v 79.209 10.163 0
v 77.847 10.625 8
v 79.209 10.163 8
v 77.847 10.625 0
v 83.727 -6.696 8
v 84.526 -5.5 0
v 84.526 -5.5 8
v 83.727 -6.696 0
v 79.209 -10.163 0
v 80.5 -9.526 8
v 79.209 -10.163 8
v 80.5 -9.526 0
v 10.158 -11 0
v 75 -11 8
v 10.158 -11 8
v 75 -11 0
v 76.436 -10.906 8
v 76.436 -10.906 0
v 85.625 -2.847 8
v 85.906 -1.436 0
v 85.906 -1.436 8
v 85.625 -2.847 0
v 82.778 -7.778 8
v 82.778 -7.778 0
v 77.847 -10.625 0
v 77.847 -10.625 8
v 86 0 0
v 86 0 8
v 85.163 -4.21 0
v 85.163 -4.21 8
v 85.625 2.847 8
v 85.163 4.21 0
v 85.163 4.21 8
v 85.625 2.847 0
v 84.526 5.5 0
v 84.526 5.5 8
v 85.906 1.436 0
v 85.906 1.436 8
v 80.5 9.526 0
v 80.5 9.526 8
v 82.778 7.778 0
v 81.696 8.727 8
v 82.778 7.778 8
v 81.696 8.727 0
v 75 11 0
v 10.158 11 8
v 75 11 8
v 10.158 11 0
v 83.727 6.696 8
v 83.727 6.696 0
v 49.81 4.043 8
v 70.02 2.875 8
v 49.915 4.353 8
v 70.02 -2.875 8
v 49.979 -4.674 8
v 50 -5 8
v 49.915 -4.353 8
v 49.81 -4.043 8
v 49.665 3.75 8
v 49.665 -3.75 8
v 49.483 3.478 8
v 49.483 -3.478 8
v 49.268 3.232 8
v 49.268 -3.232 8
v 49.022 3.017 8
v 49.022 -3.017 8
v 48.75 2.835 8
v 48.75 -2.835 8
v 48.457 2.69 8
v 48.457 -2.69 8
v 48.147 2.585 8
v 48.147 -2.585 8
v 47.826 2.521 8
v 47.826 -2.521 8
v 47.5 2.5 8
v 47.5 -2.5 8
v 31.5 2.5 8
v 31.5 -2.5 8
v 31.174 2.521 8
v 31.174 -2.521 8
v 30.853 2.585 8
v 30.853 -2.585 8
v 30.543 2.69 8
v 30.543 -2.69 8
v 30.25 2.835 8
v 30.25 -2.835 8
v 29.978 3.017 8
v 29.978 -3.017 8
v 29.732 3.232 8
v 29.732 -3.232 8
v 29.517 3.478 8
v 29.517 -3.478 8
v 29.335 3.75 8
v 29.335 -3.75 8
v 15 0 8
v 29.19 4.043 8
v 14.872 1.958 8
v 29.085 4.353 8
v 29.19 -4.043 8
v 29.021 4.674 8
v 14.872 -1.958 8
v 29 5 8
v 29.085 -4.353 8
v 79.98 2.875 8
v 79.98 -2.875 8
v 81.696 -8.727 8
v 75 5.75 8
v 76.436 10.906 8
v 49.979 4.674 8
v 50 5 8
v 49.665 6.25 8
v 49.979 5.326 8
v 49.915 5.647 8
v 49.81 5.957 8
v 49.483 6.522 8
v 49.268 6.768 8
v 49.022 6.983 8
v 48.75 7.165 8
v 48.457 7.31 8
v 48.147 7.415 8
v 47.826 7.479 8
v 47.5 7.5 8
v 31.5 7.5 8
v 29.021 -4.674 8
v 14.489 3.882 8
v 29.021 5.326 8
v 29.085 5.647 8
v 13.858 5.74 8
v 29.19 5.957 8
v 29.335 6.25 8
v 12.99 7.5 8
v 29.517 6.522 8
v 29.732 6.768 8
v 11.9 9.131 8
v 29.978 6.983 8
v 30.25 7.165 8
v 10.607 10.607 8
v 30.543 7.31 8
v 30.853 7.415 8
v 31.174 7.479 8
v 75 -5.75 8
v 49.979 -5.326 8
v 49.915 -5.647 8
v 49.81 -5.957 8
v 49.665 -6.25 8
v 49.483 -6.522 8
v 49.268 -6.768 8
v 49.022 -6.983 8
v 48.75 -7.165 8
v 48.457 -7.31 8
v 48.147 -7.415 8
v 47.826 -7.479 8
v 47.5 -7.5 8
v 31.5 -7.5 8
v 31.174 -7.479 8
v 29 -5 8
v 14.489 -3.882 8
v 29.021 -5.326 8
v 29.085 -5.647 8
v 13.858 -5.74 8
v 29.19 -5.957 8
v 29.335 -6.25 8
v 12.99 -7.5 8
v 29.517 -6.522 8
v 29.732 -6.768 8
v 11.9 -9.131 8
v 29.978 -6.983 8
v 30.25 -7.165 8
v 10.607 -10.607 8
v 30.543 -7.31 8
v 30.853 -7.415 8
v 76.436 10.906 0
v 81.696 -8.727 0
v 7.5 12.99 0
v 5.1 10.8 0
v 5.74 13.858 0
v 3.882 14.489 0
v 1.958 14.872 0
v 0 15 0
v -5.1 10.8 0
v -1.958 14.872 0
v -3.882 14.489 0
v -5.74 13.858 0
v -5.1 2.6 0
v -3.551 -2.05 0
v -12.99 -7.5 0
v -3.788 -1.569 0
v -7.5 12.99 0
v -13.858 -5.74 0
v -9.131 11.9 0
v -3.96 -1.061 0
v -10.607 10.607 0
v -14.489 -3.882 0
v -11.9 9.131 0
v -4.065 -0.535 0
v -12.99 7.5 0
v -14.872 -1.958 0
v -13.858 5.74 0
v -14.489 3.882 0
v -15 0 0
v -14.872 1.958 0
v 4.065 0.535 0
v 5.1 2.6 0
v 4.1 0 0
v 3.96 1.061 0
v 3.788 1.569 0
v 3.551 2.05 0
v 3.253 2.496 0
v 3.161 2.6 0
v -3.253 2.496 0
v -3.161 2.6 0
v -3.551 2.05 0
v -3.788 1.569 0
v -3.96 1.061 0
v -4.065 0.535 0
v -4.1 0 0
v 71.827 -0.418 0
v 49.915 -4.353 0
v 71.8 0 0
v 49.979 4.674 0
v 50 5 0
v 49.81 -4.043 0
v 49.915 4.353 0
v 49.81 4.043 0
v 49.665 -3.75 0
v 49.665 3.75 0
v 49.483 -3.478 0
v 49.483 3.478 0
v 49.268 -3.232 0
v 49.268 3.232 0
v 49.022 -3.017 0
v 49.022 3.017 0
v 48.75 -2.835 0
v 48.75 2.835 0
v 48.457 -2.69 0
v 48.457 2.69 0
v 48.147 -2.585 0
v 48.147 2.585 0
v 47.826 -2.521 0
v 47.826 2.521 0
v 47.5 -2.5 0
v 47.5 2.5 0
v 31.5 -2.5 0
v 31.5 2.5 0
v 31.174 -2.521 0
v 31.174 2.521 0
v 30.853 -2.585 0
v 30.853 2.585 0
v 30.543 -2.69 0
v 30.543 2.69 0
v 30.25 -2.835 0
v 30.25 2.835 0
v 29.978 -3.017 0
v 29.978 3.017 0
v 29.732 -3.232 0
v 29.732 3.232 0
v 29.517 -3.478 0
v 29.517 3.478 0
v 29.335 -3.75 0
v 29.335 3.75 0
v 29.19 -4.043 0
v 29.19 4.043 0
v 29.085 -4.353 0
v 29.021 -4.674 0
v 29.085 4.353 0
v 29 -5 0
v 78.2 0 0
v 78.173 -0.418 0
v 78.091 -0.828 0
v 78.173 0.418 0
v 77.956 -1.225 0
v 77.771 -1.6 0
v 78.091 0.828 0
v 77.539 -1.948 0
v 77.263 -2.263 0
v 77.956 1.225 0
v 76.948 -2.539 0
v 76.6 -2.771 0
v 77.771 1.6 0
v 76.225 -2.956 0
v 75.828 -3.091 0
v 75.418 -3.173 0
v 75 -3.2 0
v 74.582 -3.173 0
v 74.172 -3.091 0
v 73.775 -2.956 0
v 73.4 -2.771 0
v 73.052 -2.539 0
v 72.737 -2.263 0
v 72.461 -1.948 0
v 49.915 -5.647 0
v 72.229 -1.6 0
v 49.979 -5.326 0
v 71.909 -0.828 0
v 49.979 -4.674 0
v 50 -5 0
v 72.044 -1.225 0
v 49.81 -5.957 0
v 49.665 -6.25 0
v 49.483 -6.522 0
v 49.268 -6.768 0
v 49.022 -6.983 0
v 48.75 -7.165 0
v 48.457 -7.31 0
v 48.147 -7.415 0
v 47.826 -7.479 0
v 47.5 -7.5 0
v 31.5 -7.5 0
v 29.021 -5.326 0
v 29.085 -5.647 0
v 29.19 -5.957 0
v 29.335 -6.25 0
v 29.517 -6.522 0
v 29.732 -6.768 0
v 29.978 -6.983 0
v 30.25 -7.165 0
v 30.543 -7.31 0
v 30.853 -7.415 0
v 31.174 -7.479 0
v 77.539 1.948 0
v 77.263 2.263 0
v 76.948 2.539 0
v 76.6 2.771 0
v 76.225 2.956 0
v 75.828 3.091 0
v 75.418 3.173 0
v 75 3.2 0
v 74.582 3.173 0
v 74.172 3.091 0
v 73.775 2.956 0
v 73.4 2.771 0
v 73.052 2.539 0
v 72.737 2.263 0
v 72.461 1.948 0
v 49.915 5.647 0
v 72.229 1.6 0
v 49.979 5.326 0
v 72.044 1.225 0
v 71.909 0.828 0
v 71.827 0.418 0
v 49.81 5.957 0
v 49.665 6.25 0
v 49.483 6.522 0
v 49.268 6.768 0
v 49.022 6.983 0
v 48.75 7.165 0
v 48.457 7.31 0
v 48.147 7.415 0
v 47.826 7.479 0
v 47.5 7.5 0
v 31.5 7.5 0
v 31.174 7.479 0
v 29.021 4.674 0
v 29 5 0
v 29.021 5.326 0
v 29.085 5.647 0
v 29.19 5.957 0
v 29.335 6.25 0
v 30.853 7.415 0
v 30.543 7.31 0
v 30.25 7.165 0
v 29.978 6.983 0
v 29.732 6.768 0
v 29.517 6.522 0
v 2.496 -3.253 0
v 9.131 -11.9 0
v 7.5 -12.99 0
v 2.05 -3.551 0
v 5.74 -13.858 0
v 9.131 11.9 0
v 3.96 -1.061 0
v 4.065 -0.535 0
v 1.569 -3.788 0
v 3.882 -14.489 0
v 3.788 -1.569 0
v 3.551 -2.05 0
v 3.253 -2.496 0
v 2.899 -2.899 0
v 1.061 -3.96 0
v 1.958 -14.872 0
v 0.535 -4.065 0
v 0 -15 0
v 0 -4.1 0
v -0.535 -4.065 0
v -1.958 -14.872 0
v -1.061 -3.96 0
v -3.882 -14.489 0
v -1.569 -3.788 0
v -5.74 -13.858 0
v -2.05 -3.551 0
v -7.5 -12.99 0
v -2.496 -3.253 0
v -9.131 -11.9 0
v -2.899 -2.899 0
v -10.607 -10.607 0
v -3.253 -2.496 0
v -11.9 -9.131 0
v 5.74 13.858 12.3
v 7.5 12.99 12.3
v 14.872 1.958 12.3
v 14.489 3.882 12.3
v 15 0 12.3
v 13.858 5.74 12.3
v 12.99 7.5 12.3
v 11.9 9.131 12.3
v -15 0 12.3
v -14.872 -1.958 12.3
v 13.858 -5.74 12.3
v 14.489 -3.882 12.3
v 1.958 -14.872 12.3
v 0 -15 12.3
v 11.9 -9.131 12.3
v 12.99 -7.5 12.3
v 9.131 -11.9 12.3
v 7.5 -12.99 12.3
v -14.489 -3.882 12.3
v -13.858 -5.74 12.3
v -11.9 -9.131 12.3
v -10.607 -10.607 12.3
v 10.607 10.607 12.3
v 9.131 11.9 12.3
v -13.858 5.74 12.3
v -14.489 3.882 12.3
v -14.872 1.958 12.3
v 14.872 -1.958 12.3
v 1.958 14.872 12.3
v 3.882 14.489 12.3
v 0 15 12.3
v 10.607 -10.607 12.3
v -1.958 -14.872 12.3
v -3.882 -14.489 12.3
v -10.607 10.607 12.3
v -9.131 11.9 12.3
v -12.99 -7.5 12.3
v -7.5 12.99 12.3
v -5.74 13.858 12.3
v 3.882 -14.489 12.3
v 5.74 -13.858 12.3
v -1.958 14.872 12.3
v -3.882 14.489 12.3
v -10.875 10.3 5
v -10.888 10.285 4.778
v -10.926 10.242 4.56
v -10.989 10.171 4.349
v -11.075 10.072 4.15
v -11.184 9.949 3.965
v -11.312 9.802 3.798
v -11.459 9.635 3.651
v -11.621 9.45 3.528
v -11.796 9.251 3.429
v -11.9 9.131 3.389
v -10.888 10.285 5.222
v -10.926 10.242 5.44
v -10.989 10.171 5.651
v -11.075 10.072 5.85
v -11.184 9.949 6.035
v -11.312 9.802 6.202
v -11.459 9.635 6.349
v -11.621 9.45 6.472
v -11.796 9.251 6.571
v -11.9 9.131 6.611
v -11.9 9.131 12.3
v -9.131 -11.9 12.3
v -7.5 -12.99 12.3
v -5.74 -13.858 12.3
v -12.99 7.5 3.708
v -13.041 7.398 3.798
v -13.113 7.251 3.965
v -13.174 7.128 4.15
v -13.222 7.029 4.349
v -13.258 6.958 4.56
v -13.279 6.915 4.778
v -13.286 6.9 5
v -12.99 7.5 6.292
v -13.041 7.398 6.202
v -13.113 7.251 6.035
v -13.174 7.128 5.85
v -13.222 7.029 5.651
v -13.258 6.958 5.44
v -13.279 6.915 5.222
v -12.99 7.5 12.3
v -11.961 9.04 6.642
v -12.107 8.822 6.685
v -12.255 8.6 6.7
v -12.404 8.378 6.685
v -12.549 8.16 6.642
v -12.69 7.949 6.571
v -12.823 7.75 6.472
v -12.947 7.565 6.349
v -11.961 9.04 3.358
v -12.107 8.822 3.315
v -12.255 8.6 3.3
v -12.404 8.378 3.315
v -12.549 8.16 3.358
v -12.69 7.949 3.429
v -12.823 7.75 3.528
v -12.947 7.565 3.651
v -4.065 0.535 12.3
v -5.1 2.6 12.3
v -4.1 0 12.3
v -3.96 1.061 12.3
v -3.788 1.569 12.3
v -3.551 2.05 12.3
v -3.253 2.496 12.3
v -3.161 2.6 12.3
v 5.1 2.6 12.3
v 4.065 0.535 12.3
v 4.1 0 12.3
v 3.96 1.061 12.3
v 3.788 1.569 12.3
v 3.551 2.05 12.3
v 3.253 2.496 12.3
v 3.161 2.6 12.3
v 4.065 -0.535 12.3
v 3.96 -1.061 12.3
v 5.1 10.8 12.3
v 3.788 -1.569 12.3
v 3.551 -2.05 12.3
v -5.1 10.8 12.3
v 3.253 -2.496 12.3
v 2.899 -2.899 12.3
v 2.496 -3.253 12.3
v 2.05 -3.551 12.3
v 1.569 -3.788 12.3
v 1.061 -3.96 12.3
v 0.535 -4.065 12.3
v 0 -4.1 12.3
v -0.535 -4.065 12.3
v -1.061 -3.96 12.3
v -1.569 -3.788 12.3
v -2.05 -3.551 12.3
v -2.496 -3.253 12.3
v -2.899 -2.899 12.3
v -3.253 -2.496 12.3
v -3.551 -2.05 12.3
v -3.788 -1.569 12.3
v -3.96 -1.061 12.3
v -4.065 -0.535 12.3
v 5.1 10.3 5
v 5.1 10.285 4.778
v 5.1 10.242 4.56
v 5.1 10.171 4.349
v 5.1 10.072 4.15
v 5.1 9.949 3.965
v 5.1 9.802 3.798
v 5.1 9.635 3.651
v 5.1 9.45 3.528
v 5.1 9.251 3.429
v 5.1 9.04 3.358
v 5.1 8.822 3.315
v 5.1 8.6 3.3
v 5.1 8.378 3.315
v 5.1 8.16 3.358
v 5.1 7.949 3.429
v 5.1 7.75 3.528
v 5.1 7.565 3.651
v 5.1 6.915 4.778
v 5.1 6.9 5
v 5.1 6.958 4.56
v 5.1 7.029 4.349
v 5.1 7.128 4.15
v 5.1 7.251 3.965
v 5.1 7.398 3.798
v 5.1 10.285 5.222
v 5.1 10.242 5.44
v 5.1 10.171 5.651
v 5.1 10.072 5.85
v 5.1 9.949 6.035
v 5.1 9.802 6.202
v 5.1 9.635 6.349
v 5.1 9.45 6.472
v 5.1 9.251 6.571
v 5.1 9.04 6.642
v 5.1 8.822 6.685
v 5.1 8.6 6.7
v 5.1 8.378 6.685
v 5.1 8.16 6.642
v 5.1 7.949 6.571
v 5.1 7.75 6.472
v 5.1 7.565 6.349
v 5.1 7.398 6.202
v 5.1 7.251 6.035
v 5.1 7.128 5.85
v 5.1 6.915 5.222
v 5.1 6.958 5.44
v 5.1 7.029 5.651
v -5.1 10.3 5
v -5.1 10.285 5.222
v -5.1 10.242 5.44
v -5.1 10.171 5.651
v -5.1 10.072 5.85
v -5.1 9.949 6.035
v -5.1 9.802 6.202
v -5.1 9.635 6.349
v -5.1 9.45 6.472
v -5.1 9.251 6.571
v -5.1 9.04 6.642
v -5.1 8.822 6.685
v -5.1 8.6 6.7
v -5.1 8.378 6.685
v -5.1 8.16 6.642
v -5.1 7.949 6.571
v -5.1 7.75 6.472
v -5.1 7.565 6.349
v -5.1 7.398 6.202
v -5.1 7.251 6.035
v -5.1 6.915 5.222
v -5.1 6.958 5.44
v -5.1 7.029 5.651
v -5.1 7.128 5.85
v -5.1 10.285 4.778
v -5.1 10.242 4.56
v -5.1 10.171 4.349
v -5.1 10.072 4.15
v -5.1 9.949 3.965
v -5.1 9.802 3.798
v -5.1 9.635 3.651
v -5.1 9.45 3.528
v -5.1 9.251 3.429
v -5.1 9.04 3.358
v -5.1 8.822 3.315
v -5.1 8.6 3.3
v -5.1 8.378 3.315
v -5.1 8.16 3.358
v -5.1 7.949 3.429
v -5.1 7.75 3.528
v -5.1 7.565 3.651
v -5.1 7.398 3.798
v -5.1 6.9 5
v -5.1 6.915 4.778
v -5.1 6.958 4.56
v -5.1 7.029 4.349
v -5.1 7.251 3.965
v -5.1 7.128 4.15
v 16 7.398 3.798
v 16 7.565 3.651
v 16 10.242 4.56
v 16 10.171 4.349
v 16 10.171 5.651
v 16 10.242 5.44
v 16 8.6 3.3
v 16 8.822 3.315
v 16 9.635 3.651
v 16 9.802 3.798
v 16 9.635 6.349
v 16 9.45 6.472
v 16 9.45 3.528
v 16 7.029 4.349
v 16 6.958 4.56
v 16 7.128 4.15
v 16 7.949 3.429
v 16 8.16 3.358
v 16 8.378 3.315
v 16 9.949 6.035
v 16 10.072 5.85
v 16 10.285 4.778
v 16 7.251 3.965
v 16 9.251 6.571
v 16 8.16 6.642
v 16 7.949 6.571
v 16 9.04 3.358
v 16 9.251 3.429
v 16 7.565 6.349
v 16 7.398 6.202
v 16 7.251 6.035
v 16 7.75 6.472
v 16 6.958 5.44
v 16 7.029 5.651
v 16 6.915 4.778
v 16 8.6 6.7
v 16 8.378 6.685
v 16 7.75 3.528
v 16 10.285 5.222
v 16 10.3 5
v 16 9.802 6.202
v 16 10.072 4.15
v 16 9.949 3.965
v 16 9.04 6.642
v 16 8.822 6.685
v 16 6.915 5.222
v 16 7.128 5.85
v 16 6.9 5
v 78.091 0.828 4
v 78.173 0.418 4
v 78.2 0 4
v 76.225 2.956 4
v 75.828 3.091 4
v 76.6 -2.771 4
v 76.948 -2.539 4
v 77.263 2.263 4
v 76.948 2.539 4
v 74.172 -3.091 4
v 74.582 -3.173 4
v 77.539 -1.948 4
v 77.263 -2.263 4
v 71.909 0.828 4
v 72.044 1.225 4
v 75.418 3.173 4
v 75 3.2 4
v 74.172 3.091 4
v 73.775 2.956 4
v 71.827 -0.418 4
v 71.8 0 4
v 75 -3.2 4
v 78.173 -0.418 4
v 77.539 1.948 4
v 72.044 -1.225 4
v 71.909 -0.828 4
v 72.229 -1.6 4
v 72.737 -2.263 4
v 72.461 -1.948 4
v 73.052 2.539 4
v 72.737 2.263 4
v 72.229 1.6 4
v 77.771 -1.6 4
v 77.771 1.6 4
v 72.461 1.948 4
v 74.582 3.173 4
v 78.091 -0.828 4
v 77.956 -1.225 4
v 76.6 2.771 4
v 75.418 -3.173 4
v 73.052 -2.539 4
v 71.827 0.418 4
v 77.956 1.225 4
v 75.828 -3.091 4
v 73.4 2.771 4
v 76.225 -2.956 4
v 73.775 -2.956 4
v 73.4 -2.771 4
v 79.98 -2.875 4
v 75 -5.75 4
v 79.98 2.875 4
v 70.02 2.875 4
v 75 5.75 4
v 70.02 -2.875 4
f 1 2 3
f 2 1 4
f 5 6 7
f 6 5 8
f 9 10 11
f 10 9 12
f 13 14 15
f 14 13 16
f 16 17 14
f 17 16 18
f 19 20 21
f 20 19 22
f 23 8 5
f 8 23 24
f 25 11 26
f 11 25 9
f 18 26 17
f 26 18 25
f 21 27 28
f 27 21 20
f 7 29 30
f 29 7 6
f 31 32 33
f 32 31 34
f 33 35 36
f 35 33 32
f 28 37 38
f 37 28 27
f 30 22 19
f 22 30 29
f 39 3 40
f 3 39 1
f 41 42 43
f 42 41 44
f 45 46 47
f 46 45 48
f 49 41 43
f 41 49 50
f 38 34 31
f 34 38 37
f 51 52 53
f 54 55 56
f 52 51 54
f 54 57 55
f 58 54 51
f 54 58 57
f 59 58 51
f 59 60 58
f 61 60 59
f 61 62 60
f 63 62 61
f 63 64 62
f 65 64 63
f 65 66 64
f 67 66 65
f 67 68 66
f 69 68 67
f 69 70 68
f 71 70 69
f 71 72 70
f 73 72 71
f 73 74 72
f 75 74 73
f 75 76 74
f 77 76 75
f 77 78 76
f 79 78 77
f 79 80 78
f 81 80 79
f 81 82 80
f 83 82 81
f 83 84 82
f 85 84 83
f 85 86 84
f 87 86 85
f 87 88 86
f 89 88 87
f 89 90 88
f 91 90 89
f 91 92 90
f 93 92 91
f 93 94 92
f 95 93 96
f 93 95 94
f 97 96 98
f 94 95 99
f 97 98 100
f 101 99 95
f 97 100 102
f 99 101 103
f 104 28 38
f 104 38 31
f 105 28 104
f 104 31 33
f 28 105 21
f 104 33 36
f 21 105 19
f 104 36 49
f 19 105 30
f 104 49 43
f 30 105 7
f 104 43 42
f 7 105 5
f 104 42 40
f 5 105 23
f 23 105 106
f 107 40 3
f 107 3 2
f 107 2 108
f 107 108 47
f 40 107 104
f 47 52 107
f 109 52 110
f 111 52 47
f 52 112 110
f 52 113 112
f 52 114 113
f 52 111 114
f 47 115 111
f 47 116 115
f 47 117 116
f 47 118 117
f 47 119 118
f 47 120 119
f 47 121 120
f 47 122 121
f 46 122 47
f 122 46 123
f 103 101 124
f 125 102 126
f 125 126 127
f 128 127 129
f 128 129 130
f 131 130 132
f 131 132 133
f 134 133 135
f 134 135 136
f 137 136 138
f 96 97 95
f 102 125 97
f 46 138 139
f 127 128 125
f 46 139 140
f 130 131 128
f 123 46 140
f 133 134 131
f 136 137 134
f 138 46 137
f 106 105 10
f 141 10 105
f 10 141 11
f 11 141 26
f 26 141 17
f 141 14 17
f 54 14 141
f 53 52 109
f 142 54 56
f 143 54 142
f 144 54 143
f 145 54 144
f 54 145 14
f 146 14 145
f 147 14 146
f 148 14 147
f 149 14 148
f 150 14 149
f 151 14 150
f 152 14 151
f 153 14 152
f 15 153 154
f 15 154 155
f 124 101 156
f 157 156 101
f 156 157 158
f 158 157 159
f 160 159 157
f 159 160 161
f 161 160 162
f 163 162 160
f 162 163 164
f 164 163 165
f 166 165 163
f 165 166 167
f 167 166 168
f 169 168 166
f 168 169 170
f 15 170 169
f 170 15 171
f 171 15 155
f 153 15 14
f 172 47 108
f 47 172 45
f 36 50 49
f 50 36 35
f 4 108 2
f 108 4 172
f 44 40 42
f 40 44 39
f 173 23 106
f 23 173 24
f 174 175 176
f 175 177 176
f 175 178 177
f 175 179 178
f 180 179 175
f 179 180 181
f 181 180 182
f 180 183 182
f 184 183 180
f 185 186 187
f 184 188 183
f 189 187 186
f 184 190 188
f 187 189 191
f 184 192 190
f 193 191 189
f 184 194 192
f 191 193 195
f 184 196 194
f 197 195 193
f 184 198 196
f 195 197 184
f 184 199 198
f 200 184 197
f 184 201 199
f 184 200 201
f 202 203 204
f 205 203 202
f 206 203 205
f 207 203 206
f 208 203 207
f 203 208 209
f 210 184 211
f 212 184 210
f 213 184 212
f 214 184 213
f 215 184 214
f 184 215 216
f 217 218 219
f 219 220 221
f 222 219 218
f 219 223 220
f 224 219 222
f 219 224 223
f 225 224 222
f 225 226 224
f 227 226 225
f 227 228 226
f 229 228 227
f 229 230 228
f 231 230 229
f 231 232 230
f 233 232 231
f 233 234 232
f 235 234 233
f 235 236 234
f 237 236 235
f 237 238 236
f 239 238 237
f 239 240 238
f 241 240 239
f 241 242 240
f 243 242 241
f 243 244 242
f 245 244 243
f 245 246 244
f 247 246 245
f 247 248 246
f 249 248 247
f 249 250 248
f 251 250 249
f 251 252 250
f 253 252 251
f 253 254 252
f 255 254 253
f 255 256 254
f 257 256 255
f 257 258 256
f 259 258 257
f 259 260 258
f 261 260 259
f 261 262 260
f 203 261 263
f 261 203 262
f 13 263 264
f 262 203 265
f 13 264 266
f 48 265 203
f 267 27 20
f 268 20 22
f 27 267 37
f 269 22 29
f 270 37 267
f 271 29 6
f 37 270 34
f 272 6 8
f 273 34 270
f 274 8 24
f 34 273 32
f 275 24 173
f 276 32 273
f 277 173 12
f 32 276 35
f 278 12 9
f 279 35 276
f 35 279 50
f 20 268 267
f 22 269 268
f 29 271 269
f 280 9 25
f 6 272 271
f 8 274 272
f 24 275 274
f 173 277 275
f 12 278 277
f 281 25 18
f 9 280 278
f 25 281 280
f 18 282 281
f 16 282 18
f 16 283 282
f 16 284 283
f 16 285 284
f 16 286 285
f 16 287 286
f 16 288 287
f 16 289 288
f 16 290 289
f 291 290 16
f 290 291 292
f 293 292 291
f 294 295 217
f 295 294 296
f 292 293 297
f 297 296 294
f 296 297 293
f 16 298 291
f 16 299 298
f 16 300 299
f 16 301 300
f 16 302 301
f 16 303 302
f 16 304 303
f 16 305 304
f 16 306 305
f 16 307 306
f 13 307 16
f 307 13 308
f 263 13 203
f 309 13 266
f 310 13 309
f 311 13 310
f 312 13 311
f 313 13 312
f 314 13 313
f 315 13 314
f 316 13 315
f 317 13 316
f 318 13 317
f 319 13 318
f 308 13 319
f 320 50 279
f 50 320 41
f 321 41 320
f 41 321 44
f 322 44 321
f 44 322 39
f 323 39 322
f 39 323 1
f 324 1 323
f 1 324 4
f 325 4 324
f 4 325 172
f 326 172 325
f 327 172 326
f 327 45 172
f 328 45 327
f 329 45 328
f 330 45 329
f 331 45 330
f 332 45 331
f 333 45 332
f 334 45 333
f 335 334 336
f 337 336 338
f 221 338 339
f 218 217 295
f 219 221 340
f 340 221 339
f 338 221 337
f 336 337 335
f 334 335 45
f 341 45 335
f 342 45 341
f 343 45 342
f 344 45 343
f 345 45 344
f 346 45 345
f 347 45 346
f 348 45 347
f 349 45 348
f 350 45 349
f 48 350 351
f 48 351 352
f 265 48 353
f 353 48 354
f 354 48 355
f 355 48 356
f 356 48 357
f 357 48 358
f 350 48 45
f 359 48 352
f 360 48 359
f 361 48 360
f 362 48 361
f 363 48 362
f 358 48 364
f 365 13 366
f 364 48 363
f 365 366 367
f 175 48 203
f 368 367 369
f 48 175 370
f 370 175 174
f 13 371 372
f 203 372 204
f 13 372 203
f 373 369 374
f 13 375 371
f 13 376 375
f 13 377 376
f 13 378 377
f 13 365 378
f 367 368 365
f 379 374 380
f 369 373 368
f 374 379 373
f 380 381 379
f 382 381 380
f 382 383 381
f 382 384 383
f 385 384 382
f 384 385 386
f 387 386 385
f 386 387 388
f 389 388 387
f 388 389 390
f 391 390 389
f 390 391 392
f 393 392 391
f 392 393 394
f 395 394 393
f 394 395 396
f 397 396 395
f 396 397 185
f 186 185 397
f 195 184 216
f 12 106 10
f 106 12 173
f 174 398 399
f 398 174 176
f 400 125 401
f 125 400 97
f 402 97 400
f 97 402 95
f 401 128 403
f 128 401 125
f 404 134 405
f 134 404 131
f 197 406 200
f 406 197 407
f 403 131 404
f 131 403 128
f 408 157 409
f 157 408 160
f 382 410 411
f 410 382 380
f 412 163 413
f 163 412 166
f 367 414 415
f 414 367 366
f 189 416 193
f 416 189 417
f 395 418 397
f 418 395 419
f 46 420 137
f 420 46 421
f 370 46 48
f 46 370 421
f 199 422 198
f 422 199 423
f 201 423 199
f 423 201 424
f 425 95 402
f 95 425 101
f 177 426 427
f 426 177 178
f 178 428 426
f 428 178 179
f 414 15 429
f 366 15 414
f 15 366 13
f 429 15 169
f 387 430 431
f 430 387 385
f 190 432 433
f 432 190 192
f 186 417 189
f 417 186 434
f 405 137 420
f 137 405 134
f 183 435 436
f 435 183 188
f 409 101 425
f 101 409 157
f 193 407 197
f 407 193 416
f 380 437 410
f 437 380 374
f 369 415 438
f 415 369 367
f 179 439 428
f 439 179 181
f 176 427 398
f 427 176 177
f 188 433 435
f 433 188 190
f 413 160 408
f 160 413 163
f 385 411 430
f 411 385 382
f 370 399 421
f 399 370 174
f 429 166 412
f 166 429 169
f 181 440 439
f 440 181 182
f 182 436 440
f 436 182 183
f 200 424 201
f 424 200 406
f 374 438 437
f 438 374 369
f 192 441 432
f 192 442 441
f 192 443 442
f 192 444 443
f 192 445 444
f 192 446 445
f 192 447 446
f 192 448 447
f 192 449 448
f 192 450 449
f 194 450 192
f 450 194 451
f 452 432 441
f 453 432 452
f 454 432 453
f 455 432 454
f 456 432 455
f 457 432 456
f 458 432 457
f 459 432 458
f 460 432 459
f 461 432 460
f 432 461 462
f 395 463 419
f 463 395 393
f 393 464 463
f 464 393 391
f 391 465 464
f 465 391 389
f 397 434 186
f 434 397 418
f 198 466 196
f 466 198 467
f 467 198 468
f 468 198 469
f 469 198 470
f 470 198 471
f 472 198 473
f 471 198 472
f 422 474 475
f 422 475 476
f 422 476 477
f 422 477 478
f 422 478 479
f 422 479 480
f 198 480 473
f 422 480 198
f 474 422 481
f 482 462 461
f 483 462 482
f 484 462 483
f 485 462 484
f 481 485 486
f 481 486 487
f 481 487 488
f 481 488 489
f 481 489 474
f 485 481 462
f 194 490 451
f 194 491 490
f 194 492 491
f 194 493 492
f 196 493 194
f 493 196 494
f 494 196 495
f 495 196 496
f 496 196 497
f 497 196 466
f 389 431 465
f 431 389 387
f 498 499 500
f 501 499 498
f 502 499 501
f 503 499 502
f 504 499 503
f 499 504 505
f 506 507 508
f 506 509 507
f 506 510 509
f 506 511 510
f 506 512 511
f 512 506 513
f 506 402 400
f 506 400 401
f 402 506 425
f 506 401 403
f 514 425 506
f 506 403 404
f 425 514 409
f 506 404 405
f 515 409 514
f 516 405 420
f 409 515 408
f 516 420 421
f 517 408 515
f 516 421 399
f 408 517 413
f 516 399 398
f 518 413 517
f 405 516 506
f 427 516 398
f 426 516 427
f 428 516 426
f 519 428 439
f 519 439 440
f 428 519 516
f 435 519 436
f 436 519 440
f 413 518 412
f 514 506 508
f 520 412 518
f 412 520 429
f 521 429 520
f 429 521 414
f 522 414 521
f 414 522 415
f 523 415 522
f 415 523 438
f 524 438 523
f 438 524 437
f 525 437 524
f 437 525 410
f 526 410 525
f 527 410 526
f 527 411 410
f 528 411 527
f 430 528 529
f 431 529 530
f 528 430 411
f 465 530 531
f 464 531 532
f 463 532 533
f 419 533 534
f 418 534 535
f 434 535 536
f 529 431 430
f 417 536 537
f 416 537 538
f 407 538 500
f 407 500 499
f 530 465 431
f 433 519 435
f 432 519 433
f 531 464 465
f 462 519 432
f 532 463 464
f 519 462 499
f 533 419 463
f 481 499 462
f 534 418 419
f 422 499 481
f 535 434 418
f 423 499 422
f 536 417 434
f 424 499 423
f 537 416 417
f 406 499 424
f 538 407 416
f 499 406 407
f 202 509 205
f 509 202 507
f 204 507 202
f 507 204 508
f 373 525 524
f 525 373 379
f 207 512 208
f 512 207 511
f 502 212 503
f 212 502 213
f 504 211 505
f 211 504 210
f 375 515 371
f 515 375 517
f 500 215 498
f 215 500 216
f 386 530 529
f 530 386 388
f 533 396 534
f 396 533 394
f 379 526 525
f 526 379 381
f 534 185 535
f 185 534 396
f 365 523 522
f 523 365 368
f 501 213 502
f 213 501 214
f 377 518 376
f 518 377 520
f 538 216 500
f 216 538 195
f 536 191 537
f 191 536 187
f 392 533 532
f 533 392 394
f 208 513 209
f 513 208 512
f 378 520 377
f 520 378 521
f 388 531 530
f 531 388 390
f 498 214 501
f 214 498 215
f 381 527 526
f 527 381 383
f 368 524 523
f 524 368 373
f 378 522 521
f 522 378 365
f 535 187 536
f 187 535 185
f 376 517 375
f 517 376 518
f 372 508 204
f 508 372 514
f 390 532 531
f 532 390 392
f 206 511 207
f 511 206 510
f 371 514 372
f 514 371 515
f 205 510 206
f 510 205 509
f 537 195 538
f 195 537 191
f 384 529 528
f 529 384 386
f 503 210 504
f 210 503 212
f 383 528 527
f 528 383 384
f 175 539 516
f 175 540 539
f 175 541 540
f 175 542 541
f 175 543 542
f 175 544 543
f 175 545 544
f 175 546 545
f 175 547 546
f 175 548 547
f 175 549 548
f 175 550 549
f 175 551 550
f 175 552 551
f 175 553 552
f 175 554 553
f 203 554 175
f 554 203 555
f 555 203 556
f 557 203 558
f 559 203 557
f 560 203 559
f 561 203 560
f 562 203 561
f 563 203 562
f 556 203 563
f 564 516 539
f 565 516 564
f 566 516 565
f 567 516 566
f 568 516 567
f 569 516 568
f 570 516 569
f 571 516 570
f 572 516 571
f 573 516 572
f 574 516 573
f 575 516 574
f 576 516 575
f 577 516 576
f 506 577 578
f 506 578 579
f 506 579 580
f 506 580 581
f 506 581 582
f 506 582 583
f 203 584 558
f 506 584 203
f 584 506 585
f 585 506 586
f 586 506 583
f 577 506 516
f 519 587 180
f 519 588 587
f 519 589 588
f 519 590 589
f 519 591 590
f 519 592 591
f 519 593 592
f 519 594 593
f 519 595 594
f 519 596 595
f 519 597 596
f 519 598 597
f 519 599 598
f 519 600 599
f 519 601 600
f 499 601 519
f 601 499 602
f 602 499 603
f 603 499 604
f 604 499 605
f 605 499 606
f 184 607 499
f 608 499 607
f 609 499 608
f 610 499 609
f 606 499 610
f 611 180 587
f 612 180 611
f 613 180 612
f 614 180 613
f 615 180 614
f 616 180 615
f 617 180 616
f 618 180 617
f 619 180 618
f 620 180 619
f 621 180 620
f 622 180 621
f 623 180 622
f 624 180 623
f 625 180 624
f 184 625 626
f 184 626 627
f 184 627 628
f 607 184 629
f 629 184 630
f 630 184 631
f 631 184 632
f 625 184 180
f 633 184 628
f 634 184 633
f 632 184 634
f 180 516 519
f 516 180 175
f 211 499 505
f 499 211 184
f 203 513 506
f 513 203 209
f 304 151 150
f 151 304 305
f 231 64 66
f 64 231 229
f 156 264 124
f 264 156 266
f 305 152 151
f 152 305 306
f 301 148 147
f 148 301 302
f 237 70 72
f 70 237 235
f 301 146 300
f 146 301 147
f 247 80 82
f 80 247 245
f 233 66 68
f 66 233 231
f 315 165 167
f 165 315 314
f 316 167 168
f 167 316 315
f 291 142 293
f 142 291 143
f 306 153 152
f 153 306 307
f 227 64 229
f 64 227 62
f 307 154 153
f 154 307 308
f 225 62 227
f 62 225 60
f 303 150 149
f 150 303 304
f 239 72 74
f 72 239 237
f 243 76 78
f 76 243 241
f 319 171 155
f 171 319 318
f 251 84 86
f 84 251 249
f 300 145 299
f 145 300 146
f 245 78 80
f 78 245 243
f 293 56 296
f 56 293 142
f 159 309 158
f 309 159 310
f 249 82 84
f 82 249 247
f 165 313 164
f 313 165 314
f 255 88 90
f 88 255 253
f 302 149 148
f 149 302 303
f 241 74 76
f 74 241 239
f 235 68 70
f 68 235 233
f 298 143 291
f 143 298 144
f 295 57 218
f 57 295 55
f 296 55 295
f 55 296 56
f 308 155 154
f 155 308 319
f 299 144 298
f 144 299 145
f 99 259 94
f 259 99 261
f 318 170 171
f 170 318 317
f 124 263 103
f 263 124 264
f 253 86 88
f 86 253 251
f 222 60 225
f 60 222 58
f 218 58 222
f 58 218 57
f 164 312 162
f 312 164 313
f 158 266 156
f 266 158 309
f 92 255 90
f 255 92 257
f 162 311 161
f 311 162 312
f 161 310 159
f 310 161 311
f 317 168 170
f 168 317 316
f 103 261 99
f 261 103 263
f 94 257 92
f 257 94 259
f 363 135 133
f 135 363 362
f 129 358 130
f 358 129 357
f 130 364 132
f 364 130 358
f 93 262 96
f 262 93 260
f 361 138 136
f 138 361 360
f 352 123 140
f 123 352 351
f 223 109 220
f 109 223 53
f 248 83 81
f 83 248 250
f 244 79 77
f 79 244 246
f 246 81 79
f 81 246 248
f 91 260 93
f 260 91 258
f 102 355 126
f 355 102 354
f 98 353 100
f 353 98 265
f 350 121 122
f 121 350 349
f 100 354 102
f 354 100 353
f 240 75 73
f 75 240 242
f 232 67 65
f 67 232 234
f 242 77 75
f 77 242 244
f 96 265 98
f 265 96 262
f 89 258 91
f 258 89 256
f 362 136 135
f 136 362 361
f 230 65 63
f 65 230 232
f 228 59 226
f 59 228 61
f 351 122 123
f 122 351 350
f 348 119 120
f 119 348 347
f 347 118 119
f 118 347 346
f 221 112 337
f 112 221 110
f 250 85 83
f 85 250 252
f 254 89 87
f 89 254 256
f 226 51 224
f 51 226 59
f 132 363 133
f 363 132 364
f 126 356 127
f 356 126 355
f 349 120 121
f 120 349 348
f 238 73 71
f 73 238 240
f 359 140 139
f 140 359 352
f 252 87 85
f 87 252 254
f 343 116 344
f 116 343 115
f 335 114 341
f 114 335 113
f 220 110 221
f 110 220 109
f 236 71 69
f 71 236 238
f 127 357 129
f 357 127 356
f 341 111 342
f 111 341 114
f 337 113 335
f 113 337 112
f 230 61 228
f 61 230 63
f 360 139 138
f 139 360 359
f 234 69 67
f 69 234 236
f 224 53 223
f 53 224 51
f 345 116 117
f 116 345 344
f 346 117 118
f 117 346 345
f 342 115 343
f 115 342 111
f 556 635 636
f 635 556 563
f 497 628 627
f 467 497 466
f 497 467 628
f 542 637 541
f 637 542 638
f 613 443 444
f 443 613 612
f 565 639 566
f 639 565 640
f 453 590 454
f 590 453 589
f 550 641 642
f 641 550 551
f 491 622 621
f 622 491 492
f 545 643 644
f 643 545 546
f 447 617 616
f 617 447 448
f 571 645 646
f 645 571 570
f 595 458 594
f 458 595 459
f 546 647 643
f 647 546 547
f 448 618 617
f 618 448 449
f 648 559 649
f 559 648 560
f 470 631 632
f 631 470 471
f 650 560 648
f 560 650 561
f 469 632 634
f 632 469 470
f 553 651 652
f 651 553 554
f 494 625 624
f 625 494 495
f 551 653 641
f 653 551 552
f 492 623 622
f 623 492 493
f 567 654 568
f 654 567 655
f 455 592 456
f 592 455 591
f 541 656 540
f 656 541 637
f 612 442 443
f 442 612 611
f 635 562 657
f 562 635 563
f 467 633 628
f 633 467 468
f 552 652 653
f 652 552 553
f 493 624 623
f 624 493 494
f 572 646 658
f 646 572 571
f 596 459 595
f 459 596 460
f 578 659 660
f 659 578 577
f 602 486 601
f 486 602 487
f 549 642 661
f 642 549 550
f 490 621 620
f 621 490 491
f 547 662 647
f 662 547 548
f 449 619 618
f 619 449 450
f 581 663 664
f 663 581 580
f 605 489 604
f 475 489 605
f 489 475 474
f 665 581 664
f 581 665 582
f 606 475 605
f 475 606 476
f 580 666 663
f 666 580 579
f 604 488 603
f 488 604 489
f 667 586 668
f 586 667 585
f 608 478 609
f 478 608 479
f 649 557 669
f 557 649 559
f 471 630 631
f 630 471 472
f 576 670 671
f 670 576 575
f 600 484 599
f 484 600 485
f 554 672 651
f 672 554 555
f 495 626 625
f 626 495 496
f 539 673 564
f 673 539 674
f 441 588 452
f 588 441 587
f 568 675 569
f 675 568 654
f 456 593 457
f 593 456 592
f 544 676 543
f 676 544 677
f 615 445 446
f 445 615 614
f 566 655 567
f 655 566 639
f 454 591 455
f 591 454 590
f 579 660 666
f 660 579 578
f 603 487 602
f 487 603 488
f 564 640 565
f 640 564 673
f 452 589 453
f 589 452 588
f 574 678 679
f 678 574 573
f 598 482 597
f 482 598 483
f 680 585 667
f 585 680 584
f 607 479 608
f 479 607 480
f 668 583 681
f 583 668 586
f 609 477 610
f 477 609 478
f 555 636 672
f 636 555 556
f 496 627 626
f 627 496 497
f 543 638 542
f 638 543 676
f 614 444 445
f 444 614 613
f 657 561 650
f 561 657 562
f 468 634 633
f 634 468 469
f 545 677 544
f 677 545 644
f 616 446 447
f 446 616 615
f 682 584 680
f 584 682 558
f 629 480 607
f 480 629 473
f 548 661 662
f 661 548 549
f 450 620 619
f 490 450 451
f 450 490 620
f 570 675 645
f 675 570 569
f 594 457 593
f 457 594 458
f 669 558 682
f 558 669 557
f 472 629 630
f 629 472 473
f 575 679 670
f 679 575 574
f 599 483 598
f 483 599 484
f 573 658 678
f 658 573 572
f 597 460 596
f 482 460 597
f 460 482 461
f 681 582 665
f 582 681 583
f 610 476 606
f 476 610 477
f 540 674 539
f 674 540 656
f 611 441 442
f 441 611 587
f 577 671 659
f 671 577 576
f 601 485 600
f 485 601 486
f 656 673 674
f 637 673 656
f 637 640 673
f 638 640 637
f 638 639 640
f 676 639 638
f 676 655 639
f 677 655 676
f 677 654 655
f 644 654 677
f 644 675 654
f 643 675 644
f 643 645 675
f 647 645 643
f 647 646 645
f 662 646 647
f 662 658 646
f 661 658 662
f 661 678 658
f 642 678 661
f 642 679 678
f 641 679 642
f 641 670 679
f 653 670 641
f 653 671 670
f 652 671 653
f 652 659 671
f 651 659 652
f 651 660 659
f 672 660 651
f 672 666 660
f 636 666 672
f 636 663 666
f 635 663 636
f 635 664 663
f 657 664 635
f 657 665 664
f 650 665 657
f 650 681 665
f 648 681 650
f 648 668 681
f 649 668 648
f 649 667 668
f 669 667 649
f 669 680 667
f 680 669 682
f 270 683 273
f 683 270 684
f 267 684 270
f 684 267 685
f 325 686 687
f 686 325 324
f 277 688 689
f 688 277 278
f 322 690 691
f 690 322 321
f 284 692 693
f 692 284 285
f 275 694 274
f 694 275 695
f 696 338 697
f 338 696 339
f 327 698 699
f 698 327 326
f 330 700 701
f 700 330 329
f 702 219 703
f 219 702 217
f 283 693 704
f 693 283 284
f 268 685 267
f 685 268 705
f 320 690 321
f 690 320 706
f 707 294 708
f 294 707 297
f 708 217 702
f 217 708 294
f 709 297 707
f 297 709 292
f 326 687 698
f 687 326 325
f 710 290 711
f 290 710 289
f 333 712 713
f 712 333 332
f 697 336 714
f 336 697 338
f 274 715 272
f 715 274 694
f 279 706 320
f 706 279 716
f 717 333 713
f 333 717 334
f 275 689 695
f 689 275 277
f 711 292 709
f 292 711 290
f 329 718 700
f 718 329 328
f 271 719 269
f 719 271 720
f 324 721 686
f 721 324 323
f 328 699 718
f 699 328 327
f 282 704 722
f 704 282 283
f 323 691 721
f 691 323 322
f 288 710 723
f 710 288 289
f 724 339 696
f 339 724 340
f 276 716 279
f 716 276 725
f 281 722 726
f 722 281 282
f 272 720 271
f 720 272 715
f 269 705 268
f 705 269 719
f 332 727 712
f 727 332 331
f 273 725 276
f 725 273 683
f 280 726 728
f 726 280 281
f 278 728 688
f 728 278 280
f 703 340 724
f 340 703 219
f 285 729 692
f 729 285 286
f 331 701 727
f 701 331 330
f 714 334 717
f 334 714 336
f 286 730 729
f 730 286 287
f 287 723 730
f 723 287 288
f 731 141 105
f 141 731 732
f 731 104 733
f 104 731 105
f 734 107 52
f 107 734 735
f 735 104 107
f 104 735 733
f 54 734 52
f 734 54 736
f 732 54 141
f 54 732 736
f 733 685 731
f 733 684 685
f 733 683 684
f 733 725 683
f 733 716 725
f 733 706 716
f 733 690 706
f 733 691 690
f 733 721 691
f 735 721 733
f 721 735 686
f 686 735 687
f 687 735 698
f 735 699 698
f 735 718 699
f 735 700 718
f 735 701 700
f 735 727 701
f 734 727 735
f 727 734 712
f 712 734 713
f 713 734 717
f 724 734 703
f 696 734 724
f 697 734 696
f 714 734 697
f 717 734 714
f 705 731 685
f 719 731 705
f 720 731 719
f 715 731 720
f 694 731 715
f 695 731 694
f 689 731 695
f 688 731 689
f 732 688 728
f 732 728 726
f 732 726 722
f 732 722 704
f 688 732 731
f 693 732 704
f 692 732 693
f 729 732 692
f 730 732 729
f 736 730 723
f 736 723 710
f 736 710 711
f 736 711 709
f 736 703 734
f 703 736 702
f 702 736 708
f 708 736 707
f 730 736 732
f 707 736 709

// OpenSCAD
// Pi Flux - hand crank generator: crank arm
// Clamp hub on the crank shaft plus an offset boss for the knob; the knob bolts through
// with M6. Prints flat (D-bore vertical), no supports.
include <crank_common.scad>

module cr_arm() {
    difference() {
        union() {
            hull() {
                cylinder(d = CR_ARM_W, h = CR_ARM_T);
                translate([CR_ARM_R, 0, 0]) cylinder(d = CR_ARM_W, h = CR_ARM_T);
            }
            translate([0, 0, 0]) cylinder(d = CR_ARM_W + 8, h = CR_ARM_T + CR_HUB_TOP);
        }
        cr_dbore(h = CR_ARM_T + CR_HUB_TOP + 2);
        // clamp slit and its screw
        translate([-1.2, CR_FLAT, -0.5]) cube([2.4, CR_BORE_D, CR_ARM_T + CR_HUB_TOP + 1]);
        translate([-(CR_ARM_W + 8)/2 - 1, CR_FLAT + 6, CR_ARM_T/2 + 1]) rotate([0, 90, 0])
            cylinder(d = 3.4, h = CR_ARM_W + 10);
        // knob bolt plus nut trap underneath
        translate([CR_ARM_R, 0, -1]) cylinder(d = CR_GRIP_BOLT, h = CR_ARM_T + 3);
        translate([CR_ARM_R, 0, 4.0]) rotate([0, 0, 30]) cylinder(d = 11.5, h = 7, $fn = 6);
        // lightening slots
        for (s = [-1, 1]) hull() {
            translate([CR_ARM_R/2 - 6, s*5, -0.5]) cylinder(d = 5, h = CR_ARM_T + 1);
            translate([CR_ARM_R/2 + 10, s*5, -0.5]) cylinder(d = 5, h = CR_ARM_T + 1);
        }
    }
}

if (is_undef(ASSEMBLY)) cr_arm();
